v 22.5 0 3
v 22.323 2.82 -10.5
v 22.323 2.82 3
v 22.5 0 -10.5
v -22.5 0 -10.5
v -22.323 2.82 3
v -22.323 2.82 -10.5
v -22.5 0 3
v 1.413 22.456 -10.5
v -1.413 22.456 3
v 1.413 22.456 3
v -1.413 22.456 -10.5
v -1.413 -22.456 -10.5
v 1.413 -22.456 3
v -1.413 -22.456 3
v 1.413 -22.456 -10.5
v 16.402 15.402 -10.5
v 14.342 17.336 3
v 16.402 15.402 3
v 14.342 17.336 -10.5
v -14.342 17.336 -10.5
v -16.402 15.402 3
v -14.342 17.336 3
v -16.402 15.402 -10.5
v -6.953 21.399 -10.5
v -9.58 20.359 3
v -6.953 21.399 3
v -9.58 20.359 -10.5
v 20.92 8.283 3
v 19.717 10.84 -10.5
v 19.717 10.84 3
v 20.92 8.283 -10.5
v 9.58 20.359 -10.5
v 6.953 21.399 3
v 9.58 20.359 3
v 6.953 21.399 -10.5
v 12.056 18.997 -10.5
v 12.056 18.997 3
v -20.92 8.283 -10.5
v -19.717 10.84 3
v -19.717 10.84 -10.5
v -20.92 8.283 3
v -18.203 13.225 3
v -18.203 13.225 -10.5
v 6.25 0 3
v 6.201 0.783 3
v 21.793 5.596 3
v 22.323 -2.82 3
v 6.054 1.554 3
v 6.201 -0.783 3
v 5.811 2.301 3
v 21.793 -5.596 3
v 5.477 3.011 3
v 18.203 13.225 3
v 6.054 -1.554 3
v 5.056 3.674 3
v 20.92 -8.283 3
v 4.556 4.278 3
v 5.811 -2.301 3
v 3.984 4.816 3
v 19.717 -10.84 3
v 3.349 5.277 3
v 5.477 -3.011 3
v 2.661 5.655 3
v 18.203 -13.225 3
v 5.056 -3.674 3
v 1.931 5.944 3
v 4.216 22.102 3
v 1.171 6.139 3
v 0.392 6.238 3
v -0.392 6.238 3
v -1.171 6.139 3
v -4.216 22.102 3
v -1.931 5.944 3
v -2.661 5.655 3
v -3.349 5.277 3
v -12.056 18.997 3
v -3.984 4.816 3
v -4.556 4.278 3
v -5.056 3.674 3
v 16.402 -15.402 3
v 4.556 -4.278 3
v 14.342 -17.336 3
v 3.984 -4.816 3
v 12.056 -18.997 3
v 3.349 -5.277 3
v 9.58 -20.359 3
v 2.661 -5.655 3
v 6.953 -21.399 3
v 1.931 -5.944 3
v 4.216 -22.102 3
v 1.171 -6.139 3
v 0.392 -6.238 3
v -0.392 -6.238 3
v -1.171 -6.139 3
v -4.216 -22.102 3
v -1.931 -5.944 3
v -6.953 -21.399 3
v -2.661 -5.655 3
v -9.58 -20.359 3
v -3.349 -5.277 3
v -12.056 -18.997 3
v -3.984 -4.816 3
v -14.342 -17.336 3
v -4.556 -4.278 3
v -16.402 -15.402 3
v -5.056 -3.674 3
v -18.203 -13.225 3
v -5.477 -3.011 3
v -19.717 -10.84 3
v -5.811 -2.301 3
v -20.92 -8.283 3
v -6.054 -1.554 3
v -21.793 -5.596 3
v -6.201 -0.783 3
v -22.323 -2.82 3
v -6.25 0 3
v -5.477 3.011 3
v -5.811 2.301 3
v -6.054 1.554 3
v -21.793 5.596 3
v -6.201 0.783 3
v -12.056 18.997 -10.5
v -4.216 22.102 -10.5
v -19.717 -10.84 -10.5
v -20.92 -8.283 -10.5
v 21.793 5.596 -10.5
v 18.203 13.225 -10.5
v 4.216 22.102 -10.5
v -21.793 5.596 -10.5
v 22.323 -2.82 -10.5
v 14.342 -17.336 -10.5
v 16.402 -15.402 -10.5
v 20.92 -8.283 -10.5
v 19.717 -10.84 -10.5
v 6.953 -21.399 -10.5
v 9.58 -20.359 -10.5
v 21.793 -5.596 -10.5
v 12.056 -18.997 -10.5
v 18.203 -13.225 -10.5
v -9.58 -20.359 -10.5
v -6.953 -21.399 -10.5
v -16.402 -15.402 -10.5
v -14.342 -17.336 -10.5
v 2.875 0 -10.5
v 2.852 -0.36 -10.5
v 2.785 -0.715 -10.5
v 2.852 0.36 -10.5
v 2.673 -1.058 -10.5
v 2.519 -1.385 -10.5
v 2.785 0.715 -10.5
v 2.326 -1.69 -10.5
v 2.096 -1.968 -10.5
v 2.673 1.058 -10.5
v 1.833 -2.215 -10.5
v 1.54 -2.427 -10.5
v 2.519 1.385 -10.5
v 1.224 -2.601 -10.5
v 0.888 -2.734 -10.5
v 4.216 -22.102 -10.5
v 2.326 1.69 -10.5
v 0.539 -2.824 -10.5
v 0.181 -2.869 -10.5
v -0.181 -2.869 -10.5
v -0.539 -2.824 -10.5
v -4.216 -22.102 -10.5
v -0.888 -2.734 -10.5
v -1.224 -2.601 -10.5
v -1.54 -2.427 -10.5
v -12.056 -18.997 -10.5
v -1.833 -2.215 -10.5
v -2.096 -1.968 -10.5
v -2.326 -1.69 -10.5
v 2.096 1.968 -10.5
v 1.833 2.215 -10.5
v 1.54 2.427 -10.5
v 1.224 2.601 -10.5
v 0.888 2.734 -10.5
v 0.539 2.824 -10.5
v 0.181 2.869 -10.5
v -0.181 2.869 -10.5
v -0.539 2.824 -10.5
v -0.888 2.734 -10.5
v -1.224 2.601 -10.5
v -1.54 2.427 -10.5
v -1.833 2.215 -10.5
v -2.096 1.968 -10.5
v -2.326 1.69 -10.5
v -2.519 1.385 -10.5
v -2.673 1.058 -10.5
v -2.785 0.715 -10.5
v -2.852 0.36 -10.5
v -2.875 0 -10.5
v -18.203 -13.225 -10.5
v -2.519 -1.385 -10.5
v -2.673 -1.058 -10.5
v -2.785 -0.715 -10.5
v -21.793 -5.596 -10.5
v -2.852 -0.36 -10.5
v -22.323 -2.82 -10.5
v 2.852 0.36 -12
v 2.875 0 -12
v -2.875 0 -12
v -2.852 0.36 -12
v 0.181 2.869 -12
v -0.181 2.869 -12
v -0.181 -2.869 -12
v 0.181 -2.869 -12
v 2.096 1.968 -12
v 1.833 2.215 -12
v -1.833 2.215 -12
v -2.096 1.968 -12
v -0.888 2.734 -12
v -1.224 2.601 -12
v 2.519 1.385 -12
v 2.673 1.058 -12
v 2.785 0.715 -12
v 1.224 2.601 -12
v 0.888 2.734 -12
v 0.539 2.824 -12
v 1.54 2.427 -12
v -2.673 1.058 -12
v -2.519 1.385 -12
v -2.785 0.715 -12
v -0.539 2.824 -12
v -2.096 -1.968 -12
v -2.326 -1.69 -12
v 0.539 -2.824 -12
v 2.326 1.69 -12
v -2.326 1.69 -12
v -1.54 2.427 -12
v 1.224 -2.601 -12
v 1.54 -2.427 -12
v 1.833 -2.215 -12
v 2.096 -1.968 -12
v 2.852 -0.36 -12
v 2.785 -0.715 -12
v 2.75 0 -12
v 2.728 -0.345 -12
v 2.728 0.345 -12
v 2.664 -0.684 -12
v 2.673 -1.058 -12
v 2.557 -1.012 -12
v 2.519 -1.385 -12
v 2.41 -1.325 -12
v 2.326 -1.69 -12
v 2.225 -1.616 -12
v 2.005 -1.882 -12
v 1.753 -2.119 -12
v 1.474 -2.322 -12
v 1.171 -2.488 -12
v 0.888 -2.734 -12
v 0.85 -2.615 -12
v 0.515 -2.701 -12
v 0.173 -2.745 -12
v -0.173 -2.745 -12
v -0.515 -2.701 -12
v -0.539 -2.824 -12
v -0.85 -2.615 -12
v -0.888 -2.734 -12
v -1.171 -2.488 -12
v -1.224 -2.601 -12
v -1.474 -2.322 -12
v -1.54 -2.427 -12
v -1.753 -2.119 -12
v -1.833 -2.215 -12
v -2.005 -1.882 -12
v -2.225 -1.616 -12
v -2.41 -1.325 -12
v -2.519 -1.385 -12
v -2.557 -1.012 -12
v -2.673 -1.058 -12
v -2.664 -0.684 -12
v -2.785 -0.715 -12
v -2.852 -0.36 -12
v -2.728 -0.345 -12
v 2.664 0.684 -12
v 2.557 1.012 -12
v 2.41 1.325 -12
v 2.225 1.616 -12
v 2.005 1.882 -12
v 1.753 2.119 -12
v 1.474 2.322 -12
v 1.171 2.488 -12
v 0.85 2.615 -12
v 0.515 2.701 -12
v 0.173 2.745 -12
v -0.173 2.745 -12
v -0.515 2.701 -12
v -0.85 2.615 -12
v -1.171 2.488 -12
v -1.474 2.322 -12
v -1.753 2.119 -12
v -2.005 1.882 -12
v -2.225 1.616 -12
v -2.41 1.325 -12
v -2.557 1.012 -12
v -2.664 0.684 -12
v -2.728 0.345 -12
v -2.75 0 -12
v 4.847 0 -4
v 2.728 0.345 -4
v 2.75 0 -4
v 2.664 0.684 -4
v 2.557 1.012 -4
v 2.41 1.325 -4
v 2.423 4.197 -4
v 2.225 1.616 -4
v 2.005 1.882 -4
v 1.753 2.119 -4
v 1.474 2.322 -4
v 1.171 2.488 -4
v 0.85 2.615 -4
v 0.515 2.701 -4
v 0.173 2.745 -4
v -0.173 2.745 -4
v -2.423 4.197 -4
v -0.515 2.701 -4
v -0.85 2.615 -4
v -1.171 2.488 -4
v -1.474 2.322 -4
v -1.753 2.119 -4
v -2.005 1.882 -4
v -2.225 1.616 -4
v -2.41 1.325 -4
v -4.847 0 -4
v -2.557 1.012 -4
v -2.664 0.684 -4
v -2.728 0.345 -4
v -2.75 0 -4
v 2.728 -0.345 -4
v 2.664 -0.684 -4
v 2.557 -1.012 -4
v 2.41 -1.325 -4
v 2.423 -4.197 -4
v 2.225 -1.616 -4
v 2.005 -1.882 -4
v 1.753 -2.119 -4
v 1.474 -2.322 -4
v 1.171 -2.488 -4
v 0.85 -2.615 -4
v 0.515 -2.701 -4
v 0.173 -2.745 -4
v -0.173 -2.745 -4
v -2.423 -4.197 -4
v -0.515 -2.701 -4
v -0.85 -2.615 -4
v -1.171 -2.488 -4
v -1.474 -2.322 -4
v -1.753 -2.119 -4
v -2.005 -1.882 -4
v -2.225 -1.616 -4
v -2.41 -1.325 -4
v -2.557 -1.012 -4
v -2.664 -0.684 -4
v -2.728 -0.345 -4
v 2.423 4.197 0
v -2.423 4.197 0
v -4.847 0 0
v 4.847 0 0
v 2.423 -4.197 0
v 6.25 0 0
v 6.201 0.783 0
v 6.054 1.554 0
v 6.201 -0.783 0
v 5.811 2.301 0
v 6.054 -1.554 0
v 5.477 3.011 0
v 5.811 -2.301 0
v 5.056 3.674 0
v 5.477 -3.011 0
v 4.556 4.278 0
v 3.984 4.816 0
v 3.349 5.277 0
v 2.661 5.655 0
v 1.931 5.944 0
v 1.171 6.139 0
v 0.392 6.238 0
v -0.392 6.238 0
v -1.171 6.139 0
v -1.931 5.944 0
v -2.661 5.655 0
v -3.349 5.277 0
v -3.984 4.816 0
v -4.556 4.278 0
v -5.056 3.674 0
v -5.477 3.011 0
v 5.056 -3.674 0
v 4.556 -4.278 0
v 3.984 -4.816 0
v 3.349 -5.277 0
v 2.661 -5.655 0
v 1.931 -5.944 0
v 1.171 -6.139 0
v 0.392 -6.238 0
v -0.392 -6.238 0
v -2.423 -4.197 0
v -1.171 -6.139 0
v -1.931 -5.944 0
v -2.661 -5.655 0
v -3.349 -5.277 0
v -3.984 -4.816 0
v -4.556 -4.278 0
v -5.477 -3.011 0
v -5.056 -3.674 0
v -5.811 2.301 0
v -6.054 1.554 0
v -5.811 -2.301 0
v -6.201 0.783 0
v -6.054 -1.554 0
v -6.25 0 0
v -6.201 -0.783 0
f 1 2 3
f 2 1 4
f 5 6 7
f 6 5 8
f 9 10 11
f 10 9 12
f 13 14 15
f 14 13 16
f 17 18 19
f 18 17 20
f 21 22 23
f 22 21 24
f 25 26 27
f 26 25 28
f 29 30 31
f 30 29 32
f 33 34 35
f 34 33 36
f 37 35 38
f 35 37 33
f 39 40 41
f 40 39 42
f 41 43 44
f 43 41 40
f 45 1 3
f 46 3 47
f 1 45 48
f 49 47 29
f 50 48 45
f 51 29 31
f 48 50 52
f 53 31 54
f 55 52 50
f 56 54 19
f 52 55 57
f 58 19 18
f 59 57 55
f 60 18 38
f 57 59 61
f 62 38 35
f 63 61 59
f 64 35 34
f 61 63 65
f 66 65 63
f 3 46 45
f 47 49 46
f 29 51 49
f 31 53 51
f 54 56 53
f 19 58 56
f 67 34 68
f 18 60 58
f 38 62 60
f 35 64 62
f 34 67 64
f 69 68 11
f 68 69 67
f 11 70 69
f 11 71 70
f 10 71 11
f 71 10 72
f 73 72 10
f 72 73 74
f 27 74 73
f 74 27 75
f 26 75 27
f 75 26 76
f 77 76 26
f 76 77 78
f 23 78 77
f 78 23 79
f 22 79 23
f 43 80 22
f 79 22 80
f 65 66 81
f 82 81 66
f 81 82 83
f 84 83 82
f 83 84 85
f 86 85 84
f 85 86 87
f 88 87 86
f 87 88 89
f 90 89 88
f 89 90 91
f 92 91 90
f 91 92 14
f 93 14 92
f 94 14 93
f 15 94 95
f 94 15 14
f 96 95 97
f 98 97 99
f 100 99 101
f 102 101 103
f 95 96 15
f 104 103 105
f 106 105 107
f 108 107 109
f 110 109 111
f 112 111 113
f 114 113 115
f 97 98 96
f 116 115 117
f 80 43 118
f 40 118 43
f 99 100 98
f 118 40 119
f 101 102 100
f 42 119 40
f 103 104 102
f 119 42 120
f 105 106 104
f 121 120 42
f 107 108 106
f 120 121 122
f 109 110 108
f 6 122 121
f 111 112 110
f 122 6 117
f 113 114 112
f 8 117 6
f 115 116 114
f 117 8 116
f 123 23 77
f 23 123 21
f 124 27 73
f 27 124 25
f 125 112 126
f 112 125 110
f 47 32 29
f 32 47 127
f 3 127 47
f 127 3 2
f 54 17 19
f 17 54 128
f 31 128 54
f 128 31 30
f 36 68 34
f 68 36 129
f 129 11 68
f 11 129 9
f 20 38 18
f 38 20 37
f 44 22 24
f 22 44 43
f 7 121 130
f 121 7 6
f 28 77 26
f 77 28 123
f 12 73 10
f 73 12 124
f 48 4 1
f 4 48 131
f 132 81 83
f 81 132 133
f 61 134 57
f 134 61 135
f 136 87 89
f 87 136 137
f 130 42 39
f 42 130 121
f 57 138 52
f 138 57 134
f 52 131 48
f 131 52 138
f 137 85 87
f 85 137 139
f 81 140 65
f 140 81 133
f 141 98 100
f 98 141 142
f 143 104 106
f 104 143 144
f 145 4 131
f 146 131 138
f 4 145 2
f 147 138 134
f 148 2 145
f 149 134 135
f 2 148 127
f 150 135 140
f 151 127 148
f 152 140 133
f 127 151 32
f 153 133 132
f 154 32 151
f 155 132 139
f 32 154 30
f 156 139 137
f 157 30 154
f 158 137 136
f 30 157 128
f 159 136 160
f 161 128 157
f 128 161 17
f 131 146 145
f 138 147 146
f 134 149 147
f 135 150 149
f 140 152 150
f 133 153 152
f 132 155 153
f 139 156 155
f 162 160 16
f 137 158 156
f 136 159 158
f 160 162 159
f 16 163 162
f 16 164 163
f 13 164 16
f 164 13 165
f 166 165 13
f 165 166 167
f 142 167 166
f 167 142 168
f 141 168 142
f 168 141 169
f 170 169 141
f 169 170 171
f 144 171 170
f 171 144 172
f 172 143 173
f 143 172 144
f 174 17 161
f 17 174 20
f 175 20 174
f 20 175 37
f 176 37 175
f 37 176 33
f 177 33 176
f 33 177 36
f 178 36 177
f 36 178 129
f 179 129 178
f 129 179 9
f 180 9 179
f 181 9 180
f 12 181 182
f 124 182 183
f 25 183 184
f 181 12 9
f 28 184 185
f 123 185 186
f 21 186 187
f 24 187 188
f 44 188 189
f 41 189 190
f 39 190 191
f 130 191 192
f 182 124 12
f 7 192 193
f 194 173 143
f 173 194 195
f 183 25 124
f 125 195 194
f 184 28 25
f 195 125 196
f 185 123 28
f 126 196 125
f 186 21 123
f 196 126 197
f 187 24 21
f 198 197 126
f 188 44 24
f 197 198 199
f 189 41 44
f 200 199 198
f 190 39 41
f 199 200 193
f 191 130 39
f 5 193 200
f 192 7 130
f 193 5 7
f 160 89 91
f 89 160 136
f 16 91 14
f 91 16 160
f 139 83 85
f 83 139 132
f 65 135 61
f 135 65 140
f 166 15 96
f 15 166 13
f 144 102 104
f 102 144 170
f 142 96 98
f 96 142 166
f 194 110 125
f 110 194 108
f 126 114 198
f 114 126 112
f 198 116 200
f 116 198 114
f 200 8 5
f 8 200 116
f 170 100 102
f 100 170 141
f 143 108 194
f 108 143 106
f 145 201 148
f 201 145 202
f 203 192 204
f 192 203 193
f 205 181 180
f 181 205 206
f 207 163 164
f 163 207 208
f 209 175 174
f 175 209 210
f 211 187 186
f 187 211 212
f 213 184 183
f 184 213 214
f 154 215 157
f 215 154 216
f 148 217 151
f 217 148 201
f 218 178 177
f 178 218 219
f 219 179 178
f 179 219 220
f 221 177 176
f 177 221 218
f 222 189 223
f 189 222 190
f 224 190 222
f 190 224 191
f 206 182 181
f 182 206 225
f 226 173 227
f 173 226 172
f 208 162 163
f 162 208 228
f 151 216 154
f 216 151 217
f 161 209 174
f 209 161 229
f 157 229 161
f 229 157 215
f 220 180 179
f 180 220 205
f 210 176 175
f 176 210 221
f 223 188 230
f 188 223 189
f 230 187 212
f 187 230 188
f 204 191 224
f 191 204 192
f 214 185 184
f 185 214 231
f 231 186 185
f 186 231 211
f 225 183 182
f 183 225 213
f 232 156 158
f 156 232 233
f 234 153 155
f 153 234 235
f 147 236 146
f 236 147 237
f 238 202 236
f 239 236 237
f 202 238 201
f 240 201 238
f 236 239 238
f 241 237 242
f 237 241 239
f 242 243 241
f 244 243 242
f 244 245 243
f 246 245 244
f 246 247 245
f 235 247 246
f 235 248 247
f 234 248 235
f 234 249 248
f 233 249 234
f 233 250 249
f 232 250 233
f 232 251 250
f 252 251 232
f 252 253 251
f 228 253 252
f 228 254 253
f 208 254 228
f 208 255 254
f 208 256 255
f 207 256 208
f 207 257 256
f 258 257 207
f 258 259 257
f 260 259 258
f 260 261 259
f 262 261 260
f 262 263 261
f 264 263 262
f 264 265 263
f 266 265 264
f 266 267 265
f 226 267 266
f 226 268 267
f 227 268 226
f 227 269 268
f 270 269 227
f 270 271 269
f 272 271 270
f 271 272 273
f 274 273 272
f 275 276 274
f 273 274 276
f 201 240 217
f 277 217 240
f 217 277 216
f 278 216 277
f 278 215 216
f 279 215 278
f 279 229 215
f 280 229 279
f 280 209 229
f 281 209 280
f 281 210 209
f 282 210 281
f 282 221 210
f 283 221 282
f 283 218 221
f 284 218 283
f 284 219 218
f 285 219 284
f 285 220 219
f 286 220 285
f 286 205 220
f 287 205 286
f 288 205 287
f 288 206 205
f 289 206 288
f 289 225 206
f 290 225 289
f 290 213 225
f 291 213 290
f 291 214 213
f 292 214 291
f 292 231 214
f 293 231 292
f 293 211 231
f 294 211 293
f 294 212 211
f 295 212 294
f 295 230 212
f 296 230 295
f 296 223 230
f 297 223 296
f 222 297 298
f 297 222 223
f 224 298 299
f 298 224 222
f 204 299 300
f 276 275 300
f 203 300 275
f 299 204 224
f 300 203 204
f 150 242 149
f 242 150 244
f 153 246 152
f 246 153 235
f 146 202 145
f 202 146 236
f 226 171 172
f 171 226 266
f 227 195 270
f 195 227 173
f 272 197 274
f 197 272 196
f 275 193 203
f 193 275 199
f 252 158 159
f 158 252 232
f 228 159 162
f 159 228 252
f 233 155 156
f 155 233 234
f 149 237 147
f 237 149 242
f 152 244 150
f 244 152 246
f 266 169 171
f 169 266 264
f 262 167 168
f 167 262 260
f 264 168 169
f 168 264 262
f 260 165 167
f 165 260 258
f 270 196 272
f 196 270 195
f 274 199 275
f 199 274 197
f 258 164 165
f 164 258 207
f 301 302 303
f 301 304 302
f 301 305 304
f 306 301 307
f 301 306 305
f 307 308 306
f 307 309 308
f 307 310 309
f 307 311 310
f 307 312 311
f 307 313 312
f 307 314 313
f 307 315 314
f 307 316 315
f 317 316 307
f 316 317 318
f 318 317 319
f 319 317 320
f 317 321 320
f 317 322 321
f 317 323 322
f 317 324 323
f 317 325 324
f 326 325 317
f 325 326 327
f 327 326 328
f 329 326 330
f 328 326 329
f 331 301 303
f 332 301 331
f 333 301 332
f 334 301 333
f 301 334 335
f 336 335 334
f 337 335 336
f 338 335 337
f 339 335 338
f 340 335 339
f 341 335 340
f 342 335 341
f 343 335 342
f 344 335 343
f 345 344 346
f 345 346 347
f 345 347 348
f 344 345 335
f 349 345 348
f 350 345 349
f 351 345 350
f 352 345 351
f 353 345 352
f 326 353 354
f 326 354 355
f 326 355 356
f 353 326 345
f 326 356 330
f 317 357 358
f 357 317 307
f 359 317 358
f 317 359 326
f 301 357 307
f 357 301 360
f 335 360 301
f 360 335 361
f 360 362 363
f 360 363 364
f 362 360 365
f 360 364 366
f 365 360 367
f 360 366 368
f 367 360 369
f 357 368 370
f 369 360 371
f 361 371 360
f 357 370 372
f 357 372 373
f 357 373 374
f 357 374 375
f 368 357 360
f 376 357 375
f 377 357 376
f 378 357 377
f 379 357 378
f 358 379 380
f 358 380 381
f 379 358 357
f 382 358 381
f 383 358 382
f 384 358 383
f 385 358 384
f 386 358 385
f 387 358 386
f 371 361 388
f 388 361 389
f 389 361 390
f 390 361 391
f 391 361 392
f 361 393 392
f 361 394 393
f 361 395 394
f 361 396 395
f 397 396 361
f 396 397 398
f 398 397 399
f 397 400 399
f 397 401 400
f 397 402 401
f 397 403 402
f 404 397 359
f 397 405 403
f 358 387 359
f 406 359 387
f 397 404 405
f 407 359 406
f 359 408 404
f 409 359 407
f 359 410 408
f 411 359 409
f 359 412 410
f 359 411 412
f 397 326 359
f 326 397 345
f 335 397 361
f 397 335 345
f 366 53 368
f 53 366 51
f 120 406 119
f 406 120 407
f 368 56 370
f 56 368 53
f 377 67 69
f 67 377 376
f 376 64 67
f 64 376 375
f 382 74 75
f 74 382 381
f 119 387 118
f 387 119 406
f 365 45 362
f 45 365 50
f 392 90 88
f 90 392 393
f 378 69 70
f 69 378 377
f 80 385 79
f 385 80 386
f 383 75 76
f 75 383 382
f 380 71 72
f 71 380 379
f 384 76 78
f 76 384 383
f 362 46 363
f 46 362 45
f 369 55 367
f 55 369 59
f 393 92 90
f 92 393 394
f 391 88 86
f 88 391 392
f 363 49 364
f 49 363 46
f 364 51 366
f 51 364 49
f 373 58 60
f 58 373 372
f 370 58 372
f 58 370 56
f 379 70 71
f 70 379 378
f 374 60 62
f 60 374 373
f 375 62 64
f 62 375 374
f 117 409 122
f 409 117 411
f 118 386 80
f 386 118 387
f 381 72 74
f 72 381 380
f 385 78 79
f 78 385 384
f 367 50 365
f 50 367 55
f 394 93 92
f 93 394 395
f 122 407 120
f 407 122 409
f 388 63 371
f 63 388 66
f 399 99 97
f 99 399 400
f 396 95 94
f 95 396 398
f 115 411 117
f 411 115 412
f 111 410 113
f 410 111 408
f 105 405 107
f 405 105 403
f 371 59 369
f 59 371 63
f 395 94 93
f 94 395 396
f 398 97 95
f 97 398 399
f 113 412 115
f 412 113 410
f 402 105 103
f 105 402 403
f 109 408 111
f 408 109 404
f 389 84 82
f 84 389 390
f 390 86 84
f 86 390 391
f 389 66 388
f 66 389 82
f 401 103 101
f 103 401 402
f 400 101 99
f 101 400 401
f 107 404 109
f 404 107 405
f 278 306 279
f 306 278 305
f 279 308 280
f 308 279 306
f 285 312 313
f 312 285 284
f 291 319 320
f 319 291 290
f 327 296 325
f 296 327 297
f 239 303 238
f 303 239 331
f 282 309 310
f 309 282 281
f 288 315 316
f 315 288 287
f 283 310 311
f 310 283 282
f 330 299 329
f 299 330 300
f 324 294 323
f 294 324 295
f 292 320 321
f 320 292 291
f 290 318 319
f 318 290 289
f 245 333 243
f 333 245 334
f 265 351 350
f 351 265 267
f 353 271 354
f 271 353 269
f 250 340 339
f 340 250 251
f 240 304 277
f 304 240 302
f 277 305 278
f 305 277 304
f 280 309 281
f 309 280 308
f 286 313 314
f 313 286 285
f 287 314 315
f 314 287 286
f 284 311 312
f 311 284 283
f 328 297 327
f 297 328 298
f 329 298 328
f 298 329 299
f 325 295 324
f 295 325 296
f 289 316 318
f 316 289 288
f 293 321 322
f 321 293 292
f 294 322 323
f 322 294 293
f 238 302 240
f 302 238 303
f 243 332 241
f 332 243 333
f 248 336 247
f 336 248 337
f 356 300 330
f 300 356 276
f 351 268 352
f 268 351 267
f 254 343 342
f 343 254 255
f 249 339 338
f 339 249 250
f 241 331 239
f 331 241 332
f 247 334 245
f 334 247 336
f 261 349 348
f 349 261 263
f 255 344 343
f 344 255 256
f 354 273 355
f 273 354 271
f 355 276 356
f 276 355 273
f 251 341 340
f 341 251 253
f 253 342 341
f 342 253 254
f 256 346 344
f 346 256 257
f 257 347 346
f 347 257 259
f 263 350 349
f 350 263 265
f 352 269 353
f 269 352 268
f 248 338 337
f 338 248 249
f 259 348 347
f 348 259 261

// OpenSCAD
$fn = 50;

difference() {
	union() {
		translate(v = [0, 0, -10.5]) {
			cylinder(h = 13.5, r = 22.5);
		}
		#translate(v = [0, 0, -12.0]) {
			cylinder(h = 12, r = 2.875);
		}
	}
	union() {
		translate(v = [0, 0, 0]) {
			rotate(a = [0, 0, 0]) {
				difference() {
					union() {
						translate(v = [0, 0, -4]) {
							linear_extrude(height = 4) {
								polygon(points = [[4.8468, 0.0], [2.4234000000000004, 4.197451927062417], [-2.423399999999999, 4.197451927062417], [-4.8468, 5.935618106107392e-16], [-2.423400000000002, -4.197451927062416], [2.423399999999997, -4.197451927062419]]);
							}
						}
					}
					union();
				}
			}
		}
		#cylinder(h = 3, r = 6.25);
		#translate(v = [0, 0, -100.0]) {
			cylinder(h = 200, r = 2.75);
		}
	}
}
